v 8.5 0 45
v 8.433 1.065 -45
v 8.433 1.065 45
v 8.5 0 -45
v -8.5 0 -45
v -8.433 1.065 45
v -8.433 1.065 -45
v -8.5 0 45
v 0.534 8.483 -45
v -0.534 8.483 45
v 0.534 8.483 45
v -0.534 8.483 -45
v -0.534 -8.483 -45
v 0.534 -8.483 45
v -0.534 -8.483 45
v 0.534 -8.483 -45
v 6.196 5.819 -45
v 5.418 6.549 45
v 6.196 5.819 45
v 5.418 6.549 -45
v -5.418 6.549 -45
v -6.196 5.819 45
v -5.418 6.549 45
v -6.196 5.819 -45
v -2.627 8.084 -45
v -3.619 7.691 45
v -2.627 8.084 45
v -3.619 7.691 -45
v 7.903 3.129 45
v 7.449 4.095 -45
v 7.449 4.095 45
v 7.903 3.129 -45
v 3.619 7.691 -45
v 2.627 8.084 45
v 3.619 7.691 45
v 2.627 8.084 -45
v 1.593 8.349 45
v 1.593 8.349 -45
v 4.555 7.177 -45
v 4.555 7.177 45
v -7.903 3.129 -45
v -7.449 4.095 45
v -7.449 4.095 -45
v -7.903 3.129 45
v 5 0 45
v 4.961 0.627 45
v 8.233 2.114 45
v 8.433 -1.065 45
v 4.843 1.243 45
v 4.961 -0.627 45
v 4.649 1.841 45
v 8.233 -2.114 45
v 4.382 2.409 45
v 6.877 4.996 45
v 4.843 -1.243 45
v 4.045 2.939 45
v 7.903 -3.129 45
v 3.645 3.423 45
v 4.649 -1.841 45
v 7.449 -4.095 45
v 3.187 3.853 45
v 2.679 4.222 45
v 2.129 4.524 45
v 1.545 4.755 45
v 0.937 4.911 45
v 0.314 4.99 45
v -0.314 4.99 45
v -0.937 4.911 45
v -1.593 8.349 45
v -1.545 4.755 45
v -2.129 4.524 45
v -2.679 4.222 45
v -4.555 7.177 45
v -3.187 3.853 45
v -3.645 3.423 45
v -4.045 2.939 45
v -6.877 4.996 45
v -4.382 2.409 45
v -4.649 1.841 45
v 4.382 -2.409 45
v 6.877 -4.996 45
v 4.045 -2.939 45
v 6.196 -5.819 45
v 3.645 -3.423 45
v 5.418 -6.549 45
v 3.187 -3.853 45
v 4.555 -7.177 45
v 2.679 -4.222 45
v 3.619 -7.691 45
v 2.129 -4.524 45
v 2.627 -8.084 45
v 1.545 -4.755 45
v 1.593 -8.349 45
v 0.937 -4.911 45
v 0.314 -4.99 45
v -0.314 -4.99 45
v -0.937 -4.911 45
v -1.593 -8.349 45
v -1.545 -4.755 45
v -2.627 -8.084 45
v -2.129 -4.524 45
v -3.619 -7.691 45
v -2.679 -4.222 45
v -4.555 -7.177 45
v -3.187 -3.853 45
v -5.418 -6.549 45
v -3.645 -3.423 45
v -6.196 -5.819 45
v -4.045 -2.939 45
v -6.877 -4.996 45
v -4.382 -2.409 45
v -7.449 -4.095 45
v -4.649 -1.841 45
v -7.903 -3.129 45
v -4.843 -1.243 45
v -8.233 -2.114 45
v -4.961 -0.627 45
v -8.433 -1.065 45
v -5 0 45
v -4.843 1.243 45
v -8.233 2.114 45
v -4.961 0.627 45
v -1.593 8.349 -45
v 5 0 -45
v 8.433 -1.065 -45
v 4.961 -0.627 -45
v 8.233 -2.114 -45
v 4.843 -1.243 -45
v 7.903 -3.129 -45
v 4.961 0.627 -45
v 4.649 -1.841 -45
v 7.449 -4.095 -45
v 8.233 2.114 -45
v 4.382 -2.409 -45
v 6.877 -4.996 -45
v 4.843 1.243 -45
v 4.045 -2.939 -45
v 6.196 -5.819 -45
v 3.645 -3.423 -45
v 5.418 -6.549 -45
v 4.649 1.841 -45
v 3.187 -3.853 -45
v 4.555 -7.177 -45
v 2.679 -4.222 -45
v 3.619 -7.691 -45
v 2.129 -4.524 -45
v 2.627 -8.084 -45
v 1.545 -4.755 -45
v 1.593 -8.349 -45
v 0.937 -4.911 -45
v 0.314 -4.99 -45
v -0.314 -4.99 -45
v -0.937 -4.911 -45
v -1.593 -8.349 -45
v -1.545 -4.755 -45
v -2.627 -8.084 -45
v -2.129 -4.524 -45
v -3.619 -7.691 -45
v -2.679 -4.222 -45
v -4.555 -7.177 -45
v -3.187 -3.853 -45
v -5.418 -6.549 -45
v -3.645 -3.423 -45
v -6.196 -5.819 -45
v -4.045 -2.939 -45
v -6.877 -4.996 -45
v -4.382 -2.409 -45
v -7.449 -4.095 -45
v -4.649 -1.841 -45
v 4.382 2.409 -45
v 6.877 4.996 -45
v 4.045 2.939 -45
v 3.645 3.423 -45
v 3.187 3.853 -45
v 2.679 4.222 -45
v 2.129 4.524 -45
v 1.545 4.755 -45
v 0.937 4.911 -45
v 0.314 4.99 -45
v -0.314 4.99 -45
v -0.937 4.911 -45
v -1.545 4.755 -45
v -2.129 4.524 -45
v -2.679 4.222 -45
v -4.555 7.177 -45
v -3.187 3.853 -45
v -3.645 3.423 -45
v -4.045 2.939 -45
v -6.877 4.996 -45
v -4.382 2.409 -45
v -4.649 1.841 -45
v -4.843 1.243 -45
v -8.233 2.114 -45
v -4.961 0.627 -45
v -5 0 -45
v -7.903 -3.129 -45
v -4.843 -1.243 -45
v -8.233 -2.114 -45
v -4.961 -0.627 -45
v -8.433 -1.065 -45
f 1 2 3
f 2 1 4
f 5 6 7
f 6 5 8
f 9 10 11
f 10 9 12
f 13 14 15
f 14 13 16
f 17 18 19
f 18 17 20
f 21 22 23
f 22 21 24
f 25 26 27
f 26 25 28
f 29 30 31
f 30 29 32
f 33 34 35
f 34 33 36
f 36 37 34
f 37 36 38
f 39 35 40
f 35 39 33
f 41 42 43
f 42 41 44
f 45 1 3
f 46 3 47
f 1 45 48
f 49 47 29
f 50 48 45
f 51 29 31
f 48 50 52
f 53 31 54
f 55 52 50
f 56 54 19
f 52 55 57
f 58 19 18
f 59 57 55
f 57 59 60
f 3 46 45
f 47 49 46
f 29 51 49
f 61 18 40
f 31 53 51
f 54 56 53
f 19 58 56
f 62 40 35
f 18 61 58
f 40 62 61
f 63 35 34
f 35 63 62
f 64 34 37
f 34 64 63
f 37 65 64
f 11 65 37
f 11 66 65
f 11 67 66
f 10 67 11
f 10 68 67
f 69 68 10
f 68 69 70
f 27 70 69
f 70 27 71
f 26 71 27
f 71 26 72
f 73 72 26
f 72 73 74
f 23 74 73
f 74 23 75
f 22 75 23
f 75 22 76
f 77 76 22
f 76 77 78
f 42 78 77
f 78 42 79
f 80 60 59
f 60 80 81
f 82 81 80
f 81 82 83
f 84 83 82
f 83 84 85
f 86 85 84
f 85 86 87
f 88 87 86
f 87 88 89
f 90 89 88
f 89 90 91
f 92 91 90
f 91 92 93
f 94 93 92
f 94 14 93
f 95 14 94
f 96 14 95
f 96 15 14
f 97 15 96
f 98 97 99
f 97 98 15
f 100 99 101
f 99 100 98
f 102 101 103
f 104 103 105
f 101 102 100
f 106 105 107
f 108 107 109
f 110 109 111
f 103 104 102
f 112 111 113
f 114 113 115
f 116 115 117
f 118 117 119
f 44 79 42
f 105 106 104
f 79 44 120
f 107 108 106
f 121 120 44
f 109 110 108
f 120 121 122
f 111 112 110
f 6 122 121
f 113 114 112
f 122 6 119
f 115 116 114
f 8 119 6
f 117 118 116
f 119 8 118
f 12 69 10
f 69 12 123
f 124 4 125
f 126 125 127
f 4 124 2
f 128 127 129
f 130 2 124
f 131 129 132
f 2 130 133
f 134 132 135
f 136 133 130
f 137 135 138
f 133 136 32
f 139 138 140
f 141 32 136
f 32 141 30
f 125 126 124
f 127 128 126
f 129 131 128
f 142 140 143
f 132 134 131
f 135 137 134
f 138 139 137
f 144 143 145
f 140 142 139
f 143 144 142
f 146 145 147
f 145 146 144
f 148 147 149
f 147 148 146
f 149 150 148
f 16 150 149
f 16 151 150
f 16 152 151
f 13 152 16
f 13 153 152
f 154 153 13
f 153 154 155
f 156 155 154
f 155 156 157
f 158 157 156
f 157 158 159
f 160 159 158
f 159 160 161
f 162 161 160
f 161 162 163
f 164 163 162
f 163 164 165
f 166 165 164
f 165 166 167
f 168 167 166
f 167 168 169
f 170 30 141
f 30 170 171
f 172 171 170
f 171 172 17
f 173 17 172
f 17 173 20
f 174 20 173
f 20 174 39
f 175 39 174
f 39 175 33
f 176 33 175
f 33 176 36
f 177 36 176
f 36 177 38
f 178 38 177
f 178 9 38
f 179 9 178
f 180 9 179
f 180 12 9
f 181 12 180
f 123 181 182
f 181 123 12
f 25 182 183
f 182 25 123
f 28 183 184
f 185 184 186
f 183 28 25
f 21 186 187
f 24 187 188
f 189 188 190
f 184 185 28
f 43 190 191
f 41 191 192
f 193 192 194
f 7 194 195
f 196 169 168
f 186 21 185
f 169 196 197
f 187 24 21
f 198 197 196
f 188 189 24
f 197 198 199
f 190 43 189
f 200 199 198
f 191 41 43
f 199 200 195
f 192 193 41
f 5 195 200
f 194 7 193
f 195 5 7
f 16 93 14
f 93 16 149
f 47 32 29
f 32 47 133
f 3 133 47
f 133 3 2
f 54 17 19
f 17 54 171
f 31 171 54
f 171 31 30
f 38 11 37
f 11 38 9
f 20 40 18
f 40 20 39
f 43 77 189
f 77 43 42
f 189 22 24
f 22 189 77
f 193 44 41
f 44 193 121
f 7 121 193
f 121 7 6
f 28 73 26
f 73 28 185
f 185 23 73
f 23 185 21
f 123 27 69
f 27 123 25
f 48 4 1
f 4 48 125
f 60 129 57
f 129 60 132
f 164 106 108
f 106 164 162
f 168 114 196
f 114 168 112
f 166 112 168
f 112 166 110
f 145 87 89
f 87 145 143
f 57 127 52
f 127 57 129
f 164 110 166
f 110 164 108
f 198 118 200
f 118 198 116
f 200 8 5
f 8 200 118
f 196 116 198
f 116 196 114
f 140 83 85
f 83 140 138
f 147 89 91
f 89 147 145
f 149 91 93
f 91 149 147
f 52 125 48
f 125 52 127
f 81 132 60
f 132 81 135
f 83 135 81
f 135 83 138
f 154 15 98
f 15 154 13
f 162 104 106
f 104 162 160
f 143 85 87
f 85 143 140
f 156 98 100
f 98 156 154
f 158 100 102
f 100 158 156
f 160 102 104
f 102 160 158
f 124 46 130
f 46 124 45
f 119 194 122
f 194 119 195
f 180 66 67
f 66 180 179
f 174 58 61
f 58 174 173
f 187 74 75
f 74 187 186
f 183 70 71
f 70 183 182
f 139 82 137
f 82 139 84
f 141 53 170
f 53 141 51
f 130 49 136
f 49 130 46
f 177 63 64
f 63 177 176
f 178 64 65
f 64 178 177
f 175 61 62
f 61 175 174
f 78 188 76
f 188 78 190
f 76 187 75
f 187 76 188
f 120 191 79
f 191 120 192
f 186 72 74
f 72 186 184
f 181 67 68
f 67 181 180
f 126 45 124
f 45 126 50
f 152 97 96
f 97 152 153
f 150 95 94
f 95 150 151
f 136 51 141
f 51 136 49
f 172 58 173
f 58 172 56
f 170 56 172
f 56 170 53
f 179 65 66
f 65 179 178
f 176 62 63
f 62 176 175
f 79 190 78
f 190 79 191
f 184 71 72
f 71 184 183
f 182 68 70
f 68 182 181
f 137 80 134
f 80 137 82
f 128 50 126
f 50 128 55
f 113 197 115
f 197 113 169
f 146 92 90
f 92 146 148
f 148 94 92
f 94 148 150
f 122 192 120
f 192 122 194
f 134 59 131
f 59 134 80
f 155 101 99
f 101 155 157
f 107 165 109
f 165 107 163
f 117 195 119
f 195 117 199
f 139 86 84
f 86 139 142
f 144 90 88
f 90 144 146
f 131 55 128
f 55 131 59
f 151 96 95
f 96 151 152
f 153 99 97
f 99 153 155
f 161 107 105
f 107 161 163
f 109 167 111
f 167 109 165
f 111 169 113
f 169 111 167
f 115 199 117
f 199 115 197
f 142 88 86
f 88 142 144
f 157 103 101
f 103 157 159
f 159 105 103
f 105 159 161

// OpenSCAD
$fn = 50;


difference() {
	union() {
		translate(v = [0, 0, -45.0000000000]) {
			cylinder(h = 90, r = 8.5000000000);
		}
	}
	union() {
		translate(v = [0, 0, -100.0000000000]) {
			cylinder(h = 200, r = 5.0000000000);
		}
	}
}
